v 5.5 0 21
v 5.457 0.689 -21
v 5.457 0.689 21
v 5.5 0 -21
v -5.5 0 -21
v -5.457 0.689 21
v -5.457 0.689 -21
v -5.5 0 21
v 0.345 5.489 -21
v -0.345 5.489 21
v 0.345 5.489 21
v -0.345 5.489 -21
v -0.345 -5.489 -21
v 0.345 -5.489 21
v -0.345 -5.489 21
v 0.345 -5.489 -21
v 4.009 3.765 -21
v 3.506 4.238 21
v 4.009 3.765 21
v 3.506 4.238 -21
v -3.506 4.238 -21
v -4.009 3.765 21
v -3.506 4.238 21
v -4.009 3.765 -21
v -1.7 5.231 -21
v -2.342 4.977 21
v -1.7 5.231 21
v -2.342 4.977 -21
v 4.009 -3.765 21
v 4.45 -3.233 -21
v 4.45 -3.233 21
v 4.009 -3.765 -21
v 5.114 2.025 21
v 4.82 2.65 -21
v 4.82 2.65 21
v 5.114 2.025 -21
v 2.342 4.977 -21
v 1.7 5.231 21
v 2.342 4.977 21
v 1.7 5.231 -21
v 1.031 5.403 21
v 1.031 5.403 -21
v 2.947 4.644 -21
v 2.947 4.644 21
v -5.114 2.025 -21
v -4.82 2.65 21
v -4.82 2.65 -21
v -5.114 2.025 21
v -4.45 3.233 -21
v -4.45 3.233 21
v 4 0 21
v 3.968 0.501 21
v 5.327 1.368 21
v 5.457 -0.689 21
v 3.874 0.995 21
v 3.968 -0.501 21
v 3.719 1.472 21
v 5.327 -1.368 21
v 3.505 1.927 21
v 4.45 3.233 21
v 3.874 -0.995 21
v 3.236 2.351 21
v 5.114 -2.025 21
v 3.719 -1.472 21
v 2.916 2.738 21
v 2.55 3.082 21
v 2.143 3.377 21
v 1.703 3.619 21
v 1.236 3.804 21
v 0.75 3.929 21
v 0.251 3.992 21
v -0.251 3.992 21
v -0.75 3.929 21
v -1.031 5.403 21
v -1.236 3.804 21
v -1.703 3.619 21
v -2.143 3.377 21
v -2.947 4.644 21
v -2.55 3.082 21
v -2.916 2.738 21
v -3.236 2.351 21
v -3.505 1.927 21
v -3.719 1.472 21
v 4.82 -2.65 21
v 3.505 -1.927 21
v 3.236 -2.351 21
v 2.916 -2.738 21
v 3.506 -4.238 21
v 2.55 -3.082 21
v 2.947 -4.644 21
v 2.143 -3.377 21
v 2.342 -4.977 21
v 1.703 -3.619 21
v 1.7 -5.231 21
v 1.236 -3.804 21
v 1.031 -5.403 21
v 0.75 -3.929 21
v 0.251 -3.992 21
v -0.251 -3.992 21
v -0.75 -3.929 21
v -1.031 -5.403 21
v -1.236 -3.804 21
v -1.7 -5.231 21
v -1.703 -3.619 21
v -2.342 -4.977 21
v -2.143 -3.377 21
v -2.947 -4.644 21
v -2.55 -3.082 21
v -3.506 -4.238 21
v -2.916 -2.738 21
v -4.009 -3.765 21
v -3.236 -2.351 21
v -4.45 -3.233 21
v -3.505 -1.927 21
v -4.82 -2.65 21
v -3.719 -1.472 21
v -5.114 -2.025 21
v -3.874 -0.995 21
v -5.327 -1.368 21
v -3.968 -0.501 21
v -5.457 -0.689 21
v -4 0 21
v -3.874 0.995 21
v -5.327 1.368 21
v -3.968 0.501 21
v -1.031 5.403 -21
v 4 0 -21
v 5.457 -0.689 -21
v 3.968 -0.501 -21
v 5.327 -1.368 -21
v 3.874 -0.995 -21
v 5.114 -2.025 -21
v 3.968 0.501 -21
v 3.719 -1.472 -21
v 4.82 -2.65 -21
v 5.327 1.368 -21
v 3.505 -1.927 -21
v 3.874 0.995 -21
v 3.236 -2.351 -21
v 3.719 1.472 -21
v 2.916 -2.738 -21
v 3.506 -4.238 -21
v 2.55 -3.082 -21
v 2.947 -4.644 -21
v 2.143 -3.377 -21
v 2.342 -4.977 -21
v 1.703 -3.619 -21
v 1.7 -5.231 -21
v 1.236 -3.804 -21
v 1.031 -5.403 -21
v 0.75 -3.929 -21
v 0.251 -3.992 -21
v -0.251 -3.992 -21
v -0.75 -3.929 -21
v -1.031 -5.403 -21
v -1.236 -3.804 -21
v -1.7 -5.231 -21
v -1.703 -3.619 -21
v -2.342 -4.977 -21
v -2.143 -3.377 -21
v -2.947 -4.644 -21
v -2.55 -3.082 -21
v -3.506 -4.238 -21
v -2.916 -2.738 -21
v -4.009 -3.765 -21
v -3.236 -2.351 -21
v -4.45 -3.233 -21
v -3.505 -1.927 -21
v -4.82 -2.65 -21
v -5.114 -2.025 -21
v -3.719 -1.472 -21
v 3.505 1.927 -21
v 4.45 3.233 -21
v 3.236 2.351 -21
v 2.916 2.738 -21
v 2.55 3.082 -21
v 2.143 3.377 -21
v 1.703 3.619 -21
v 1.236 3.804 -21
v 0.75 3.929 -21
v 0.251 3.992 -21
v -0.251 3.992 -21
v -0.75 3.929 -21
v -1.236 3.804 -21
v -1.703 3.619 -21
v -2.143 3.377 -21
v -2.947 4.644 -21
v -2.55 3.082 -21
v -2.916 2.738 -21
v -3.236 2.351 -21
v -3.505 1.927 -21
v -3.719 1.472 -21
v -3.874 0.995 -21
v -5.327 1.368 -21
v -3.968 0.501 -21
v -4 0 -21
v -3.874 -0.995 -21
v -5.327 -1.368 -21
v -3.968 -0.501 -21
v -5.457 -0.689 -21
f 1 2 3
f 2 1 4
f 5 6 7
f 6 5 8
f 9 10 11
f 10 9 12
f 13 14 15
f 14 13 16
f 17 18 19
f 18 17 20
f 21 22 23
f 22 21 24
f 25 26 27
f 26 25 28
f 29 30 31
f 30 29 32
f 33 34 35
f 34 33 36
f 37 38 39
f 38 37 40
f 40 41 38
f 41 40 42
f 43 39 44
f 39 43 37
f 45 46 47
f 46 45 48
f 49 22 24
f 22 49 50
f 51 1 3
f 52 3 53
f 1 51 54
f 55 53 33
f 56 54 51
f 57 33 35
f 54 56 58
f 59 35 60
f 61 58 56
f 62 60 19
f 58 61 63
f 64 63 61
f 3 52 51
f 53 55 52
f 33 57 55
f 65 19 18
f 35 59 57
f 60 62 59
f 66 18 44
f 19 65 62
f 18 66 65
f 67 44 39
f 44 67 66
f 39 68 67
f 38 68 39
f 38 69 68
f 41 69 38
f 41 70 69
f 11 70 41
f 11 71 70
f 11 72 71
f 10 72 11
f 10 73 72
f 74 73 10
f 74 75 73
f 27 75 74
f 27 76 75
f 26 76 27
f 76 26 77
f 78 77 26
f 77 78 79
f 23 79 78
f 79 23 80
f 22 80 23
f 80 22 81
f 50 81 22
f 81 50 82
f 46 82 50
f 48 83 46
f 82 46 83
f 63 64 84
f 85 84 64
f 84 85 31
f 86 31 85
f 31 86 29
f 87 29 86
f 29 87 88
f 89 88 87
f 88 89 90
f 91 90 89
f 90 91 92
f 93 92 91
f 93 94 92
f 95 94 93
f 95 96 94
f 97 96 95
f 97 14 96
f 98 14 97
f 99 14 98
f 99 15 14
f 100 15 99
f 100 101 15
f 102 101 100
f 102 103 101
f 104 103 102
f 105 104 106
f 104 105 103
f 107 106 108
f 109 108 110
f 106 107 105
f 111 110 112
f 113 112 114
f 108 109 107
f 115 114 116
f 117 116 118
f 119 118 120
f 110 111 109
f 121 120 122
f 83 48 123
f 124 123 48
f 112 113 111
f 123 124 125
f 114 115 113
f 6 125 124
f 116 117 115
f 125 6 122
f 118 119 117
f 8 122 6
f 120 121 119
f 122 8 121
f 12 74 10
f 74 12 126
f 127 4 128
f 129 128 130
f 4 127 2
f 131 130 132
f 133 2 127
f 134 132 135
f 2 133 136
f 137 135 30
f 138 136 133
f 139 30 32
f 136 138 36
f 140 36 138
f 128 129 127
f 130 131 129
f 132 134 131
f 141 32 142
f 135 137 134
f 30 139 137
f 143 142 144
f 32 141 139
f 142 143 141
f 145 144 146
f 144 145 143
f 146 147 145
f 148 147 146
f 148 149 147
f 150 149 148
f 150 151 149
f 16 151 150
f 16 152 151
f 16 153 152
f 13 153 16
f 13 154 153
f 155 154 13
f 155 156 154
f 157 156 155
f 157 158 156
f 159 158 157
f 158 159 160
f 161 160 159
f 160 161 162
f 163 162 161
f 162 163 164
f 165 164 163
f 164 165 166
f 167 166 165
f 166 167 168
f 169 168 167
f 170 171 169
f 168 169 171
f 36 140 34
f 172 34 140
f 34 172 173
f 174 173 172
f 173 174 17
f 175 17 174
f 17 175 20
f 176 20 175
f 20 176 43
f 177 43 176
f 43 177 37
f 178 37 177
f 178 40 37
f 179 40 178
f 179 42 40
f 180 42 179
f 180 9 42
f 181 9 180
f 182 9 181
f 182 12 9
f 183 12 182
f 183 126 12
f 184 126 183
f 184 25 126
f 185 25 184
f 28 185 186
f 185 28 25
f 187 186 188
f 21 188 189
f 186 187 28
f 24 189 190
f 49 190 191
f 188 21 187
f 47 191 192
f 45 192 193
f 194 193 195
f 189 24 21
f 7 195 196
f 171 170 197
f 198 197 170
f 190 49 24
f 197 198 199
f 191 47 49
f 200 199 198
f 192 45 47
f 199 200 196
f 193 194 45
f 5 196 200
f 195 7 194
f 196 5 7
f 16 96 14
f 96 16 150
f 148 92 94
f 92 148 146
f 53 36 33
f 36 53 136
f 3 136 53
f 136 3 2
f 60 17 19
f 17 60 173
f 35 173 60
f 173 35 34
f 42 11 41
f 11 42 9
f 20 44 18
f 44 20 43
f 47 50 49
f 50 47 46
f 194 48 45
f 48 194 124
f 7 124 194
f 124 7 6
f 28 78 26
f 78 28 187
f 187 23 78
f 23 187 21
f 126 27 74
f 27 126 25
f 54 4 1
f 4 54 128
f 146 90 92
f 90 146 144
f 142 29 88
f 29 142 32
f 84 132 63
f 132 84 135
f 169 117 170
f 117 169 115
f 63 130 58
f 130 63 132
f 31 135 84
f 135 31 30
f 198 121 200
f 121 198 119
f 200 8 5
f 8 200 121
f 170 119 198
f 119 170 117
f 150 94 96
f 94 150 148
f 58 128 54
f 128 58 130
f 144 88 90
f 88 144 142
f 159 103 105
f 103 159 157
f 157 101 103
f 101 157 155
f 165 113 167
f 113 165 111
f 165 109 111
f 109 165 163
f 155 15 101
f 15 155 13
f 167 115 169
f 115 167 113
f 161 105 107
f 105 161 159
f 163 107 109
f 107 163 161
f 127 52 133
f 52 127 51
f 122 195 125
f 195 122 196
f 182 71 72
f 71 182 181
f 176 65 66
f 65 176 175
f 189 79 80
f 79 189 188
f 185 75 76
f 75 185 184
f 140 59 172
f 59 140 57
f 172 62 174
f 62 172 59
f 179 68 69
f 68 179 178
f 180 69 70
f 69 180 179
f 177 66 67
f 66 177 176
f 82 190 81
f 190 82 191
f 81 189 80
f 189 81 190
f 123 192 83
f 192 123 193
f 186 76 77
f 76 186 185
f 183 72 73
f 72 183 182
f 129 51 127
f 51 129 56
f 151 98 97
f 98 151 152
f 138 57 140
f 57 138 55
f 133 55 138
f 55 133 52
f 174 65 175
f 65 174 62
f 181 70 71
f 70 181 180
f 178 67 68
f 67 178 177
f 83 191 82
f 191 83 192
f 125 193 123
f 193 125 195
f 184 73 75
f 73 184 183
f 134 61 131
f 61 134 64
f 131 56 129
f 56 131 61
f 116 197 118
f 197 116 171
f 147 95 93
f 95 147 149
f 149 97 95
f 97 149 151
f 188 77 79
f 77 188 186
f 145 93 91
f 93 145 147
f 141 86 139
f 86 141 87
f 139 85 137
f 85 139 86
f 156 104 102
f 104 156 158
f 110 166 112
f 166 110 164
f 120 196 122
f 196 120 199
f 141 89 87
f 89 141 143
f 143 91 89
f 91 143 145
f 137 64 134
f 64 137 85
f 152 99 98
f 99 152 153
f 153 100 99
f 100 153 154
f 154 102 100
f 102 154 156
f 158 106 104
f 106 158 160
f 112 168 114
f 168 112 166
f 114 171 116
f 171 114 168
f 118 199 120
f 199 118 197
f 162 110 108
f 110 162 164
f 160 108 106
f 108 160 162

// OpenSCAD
$fn = 50;


difference() {
	union() {
		translate(v = [0, 0, -21.0000000000]) {
			cylinder(h = 42, r = 5.5000000000);
		}
	}
	union() {
		translate(v = [0, 0, -100.0000000000]) {
			cylinder(h = 200, r = 4);
		}
	}
}
